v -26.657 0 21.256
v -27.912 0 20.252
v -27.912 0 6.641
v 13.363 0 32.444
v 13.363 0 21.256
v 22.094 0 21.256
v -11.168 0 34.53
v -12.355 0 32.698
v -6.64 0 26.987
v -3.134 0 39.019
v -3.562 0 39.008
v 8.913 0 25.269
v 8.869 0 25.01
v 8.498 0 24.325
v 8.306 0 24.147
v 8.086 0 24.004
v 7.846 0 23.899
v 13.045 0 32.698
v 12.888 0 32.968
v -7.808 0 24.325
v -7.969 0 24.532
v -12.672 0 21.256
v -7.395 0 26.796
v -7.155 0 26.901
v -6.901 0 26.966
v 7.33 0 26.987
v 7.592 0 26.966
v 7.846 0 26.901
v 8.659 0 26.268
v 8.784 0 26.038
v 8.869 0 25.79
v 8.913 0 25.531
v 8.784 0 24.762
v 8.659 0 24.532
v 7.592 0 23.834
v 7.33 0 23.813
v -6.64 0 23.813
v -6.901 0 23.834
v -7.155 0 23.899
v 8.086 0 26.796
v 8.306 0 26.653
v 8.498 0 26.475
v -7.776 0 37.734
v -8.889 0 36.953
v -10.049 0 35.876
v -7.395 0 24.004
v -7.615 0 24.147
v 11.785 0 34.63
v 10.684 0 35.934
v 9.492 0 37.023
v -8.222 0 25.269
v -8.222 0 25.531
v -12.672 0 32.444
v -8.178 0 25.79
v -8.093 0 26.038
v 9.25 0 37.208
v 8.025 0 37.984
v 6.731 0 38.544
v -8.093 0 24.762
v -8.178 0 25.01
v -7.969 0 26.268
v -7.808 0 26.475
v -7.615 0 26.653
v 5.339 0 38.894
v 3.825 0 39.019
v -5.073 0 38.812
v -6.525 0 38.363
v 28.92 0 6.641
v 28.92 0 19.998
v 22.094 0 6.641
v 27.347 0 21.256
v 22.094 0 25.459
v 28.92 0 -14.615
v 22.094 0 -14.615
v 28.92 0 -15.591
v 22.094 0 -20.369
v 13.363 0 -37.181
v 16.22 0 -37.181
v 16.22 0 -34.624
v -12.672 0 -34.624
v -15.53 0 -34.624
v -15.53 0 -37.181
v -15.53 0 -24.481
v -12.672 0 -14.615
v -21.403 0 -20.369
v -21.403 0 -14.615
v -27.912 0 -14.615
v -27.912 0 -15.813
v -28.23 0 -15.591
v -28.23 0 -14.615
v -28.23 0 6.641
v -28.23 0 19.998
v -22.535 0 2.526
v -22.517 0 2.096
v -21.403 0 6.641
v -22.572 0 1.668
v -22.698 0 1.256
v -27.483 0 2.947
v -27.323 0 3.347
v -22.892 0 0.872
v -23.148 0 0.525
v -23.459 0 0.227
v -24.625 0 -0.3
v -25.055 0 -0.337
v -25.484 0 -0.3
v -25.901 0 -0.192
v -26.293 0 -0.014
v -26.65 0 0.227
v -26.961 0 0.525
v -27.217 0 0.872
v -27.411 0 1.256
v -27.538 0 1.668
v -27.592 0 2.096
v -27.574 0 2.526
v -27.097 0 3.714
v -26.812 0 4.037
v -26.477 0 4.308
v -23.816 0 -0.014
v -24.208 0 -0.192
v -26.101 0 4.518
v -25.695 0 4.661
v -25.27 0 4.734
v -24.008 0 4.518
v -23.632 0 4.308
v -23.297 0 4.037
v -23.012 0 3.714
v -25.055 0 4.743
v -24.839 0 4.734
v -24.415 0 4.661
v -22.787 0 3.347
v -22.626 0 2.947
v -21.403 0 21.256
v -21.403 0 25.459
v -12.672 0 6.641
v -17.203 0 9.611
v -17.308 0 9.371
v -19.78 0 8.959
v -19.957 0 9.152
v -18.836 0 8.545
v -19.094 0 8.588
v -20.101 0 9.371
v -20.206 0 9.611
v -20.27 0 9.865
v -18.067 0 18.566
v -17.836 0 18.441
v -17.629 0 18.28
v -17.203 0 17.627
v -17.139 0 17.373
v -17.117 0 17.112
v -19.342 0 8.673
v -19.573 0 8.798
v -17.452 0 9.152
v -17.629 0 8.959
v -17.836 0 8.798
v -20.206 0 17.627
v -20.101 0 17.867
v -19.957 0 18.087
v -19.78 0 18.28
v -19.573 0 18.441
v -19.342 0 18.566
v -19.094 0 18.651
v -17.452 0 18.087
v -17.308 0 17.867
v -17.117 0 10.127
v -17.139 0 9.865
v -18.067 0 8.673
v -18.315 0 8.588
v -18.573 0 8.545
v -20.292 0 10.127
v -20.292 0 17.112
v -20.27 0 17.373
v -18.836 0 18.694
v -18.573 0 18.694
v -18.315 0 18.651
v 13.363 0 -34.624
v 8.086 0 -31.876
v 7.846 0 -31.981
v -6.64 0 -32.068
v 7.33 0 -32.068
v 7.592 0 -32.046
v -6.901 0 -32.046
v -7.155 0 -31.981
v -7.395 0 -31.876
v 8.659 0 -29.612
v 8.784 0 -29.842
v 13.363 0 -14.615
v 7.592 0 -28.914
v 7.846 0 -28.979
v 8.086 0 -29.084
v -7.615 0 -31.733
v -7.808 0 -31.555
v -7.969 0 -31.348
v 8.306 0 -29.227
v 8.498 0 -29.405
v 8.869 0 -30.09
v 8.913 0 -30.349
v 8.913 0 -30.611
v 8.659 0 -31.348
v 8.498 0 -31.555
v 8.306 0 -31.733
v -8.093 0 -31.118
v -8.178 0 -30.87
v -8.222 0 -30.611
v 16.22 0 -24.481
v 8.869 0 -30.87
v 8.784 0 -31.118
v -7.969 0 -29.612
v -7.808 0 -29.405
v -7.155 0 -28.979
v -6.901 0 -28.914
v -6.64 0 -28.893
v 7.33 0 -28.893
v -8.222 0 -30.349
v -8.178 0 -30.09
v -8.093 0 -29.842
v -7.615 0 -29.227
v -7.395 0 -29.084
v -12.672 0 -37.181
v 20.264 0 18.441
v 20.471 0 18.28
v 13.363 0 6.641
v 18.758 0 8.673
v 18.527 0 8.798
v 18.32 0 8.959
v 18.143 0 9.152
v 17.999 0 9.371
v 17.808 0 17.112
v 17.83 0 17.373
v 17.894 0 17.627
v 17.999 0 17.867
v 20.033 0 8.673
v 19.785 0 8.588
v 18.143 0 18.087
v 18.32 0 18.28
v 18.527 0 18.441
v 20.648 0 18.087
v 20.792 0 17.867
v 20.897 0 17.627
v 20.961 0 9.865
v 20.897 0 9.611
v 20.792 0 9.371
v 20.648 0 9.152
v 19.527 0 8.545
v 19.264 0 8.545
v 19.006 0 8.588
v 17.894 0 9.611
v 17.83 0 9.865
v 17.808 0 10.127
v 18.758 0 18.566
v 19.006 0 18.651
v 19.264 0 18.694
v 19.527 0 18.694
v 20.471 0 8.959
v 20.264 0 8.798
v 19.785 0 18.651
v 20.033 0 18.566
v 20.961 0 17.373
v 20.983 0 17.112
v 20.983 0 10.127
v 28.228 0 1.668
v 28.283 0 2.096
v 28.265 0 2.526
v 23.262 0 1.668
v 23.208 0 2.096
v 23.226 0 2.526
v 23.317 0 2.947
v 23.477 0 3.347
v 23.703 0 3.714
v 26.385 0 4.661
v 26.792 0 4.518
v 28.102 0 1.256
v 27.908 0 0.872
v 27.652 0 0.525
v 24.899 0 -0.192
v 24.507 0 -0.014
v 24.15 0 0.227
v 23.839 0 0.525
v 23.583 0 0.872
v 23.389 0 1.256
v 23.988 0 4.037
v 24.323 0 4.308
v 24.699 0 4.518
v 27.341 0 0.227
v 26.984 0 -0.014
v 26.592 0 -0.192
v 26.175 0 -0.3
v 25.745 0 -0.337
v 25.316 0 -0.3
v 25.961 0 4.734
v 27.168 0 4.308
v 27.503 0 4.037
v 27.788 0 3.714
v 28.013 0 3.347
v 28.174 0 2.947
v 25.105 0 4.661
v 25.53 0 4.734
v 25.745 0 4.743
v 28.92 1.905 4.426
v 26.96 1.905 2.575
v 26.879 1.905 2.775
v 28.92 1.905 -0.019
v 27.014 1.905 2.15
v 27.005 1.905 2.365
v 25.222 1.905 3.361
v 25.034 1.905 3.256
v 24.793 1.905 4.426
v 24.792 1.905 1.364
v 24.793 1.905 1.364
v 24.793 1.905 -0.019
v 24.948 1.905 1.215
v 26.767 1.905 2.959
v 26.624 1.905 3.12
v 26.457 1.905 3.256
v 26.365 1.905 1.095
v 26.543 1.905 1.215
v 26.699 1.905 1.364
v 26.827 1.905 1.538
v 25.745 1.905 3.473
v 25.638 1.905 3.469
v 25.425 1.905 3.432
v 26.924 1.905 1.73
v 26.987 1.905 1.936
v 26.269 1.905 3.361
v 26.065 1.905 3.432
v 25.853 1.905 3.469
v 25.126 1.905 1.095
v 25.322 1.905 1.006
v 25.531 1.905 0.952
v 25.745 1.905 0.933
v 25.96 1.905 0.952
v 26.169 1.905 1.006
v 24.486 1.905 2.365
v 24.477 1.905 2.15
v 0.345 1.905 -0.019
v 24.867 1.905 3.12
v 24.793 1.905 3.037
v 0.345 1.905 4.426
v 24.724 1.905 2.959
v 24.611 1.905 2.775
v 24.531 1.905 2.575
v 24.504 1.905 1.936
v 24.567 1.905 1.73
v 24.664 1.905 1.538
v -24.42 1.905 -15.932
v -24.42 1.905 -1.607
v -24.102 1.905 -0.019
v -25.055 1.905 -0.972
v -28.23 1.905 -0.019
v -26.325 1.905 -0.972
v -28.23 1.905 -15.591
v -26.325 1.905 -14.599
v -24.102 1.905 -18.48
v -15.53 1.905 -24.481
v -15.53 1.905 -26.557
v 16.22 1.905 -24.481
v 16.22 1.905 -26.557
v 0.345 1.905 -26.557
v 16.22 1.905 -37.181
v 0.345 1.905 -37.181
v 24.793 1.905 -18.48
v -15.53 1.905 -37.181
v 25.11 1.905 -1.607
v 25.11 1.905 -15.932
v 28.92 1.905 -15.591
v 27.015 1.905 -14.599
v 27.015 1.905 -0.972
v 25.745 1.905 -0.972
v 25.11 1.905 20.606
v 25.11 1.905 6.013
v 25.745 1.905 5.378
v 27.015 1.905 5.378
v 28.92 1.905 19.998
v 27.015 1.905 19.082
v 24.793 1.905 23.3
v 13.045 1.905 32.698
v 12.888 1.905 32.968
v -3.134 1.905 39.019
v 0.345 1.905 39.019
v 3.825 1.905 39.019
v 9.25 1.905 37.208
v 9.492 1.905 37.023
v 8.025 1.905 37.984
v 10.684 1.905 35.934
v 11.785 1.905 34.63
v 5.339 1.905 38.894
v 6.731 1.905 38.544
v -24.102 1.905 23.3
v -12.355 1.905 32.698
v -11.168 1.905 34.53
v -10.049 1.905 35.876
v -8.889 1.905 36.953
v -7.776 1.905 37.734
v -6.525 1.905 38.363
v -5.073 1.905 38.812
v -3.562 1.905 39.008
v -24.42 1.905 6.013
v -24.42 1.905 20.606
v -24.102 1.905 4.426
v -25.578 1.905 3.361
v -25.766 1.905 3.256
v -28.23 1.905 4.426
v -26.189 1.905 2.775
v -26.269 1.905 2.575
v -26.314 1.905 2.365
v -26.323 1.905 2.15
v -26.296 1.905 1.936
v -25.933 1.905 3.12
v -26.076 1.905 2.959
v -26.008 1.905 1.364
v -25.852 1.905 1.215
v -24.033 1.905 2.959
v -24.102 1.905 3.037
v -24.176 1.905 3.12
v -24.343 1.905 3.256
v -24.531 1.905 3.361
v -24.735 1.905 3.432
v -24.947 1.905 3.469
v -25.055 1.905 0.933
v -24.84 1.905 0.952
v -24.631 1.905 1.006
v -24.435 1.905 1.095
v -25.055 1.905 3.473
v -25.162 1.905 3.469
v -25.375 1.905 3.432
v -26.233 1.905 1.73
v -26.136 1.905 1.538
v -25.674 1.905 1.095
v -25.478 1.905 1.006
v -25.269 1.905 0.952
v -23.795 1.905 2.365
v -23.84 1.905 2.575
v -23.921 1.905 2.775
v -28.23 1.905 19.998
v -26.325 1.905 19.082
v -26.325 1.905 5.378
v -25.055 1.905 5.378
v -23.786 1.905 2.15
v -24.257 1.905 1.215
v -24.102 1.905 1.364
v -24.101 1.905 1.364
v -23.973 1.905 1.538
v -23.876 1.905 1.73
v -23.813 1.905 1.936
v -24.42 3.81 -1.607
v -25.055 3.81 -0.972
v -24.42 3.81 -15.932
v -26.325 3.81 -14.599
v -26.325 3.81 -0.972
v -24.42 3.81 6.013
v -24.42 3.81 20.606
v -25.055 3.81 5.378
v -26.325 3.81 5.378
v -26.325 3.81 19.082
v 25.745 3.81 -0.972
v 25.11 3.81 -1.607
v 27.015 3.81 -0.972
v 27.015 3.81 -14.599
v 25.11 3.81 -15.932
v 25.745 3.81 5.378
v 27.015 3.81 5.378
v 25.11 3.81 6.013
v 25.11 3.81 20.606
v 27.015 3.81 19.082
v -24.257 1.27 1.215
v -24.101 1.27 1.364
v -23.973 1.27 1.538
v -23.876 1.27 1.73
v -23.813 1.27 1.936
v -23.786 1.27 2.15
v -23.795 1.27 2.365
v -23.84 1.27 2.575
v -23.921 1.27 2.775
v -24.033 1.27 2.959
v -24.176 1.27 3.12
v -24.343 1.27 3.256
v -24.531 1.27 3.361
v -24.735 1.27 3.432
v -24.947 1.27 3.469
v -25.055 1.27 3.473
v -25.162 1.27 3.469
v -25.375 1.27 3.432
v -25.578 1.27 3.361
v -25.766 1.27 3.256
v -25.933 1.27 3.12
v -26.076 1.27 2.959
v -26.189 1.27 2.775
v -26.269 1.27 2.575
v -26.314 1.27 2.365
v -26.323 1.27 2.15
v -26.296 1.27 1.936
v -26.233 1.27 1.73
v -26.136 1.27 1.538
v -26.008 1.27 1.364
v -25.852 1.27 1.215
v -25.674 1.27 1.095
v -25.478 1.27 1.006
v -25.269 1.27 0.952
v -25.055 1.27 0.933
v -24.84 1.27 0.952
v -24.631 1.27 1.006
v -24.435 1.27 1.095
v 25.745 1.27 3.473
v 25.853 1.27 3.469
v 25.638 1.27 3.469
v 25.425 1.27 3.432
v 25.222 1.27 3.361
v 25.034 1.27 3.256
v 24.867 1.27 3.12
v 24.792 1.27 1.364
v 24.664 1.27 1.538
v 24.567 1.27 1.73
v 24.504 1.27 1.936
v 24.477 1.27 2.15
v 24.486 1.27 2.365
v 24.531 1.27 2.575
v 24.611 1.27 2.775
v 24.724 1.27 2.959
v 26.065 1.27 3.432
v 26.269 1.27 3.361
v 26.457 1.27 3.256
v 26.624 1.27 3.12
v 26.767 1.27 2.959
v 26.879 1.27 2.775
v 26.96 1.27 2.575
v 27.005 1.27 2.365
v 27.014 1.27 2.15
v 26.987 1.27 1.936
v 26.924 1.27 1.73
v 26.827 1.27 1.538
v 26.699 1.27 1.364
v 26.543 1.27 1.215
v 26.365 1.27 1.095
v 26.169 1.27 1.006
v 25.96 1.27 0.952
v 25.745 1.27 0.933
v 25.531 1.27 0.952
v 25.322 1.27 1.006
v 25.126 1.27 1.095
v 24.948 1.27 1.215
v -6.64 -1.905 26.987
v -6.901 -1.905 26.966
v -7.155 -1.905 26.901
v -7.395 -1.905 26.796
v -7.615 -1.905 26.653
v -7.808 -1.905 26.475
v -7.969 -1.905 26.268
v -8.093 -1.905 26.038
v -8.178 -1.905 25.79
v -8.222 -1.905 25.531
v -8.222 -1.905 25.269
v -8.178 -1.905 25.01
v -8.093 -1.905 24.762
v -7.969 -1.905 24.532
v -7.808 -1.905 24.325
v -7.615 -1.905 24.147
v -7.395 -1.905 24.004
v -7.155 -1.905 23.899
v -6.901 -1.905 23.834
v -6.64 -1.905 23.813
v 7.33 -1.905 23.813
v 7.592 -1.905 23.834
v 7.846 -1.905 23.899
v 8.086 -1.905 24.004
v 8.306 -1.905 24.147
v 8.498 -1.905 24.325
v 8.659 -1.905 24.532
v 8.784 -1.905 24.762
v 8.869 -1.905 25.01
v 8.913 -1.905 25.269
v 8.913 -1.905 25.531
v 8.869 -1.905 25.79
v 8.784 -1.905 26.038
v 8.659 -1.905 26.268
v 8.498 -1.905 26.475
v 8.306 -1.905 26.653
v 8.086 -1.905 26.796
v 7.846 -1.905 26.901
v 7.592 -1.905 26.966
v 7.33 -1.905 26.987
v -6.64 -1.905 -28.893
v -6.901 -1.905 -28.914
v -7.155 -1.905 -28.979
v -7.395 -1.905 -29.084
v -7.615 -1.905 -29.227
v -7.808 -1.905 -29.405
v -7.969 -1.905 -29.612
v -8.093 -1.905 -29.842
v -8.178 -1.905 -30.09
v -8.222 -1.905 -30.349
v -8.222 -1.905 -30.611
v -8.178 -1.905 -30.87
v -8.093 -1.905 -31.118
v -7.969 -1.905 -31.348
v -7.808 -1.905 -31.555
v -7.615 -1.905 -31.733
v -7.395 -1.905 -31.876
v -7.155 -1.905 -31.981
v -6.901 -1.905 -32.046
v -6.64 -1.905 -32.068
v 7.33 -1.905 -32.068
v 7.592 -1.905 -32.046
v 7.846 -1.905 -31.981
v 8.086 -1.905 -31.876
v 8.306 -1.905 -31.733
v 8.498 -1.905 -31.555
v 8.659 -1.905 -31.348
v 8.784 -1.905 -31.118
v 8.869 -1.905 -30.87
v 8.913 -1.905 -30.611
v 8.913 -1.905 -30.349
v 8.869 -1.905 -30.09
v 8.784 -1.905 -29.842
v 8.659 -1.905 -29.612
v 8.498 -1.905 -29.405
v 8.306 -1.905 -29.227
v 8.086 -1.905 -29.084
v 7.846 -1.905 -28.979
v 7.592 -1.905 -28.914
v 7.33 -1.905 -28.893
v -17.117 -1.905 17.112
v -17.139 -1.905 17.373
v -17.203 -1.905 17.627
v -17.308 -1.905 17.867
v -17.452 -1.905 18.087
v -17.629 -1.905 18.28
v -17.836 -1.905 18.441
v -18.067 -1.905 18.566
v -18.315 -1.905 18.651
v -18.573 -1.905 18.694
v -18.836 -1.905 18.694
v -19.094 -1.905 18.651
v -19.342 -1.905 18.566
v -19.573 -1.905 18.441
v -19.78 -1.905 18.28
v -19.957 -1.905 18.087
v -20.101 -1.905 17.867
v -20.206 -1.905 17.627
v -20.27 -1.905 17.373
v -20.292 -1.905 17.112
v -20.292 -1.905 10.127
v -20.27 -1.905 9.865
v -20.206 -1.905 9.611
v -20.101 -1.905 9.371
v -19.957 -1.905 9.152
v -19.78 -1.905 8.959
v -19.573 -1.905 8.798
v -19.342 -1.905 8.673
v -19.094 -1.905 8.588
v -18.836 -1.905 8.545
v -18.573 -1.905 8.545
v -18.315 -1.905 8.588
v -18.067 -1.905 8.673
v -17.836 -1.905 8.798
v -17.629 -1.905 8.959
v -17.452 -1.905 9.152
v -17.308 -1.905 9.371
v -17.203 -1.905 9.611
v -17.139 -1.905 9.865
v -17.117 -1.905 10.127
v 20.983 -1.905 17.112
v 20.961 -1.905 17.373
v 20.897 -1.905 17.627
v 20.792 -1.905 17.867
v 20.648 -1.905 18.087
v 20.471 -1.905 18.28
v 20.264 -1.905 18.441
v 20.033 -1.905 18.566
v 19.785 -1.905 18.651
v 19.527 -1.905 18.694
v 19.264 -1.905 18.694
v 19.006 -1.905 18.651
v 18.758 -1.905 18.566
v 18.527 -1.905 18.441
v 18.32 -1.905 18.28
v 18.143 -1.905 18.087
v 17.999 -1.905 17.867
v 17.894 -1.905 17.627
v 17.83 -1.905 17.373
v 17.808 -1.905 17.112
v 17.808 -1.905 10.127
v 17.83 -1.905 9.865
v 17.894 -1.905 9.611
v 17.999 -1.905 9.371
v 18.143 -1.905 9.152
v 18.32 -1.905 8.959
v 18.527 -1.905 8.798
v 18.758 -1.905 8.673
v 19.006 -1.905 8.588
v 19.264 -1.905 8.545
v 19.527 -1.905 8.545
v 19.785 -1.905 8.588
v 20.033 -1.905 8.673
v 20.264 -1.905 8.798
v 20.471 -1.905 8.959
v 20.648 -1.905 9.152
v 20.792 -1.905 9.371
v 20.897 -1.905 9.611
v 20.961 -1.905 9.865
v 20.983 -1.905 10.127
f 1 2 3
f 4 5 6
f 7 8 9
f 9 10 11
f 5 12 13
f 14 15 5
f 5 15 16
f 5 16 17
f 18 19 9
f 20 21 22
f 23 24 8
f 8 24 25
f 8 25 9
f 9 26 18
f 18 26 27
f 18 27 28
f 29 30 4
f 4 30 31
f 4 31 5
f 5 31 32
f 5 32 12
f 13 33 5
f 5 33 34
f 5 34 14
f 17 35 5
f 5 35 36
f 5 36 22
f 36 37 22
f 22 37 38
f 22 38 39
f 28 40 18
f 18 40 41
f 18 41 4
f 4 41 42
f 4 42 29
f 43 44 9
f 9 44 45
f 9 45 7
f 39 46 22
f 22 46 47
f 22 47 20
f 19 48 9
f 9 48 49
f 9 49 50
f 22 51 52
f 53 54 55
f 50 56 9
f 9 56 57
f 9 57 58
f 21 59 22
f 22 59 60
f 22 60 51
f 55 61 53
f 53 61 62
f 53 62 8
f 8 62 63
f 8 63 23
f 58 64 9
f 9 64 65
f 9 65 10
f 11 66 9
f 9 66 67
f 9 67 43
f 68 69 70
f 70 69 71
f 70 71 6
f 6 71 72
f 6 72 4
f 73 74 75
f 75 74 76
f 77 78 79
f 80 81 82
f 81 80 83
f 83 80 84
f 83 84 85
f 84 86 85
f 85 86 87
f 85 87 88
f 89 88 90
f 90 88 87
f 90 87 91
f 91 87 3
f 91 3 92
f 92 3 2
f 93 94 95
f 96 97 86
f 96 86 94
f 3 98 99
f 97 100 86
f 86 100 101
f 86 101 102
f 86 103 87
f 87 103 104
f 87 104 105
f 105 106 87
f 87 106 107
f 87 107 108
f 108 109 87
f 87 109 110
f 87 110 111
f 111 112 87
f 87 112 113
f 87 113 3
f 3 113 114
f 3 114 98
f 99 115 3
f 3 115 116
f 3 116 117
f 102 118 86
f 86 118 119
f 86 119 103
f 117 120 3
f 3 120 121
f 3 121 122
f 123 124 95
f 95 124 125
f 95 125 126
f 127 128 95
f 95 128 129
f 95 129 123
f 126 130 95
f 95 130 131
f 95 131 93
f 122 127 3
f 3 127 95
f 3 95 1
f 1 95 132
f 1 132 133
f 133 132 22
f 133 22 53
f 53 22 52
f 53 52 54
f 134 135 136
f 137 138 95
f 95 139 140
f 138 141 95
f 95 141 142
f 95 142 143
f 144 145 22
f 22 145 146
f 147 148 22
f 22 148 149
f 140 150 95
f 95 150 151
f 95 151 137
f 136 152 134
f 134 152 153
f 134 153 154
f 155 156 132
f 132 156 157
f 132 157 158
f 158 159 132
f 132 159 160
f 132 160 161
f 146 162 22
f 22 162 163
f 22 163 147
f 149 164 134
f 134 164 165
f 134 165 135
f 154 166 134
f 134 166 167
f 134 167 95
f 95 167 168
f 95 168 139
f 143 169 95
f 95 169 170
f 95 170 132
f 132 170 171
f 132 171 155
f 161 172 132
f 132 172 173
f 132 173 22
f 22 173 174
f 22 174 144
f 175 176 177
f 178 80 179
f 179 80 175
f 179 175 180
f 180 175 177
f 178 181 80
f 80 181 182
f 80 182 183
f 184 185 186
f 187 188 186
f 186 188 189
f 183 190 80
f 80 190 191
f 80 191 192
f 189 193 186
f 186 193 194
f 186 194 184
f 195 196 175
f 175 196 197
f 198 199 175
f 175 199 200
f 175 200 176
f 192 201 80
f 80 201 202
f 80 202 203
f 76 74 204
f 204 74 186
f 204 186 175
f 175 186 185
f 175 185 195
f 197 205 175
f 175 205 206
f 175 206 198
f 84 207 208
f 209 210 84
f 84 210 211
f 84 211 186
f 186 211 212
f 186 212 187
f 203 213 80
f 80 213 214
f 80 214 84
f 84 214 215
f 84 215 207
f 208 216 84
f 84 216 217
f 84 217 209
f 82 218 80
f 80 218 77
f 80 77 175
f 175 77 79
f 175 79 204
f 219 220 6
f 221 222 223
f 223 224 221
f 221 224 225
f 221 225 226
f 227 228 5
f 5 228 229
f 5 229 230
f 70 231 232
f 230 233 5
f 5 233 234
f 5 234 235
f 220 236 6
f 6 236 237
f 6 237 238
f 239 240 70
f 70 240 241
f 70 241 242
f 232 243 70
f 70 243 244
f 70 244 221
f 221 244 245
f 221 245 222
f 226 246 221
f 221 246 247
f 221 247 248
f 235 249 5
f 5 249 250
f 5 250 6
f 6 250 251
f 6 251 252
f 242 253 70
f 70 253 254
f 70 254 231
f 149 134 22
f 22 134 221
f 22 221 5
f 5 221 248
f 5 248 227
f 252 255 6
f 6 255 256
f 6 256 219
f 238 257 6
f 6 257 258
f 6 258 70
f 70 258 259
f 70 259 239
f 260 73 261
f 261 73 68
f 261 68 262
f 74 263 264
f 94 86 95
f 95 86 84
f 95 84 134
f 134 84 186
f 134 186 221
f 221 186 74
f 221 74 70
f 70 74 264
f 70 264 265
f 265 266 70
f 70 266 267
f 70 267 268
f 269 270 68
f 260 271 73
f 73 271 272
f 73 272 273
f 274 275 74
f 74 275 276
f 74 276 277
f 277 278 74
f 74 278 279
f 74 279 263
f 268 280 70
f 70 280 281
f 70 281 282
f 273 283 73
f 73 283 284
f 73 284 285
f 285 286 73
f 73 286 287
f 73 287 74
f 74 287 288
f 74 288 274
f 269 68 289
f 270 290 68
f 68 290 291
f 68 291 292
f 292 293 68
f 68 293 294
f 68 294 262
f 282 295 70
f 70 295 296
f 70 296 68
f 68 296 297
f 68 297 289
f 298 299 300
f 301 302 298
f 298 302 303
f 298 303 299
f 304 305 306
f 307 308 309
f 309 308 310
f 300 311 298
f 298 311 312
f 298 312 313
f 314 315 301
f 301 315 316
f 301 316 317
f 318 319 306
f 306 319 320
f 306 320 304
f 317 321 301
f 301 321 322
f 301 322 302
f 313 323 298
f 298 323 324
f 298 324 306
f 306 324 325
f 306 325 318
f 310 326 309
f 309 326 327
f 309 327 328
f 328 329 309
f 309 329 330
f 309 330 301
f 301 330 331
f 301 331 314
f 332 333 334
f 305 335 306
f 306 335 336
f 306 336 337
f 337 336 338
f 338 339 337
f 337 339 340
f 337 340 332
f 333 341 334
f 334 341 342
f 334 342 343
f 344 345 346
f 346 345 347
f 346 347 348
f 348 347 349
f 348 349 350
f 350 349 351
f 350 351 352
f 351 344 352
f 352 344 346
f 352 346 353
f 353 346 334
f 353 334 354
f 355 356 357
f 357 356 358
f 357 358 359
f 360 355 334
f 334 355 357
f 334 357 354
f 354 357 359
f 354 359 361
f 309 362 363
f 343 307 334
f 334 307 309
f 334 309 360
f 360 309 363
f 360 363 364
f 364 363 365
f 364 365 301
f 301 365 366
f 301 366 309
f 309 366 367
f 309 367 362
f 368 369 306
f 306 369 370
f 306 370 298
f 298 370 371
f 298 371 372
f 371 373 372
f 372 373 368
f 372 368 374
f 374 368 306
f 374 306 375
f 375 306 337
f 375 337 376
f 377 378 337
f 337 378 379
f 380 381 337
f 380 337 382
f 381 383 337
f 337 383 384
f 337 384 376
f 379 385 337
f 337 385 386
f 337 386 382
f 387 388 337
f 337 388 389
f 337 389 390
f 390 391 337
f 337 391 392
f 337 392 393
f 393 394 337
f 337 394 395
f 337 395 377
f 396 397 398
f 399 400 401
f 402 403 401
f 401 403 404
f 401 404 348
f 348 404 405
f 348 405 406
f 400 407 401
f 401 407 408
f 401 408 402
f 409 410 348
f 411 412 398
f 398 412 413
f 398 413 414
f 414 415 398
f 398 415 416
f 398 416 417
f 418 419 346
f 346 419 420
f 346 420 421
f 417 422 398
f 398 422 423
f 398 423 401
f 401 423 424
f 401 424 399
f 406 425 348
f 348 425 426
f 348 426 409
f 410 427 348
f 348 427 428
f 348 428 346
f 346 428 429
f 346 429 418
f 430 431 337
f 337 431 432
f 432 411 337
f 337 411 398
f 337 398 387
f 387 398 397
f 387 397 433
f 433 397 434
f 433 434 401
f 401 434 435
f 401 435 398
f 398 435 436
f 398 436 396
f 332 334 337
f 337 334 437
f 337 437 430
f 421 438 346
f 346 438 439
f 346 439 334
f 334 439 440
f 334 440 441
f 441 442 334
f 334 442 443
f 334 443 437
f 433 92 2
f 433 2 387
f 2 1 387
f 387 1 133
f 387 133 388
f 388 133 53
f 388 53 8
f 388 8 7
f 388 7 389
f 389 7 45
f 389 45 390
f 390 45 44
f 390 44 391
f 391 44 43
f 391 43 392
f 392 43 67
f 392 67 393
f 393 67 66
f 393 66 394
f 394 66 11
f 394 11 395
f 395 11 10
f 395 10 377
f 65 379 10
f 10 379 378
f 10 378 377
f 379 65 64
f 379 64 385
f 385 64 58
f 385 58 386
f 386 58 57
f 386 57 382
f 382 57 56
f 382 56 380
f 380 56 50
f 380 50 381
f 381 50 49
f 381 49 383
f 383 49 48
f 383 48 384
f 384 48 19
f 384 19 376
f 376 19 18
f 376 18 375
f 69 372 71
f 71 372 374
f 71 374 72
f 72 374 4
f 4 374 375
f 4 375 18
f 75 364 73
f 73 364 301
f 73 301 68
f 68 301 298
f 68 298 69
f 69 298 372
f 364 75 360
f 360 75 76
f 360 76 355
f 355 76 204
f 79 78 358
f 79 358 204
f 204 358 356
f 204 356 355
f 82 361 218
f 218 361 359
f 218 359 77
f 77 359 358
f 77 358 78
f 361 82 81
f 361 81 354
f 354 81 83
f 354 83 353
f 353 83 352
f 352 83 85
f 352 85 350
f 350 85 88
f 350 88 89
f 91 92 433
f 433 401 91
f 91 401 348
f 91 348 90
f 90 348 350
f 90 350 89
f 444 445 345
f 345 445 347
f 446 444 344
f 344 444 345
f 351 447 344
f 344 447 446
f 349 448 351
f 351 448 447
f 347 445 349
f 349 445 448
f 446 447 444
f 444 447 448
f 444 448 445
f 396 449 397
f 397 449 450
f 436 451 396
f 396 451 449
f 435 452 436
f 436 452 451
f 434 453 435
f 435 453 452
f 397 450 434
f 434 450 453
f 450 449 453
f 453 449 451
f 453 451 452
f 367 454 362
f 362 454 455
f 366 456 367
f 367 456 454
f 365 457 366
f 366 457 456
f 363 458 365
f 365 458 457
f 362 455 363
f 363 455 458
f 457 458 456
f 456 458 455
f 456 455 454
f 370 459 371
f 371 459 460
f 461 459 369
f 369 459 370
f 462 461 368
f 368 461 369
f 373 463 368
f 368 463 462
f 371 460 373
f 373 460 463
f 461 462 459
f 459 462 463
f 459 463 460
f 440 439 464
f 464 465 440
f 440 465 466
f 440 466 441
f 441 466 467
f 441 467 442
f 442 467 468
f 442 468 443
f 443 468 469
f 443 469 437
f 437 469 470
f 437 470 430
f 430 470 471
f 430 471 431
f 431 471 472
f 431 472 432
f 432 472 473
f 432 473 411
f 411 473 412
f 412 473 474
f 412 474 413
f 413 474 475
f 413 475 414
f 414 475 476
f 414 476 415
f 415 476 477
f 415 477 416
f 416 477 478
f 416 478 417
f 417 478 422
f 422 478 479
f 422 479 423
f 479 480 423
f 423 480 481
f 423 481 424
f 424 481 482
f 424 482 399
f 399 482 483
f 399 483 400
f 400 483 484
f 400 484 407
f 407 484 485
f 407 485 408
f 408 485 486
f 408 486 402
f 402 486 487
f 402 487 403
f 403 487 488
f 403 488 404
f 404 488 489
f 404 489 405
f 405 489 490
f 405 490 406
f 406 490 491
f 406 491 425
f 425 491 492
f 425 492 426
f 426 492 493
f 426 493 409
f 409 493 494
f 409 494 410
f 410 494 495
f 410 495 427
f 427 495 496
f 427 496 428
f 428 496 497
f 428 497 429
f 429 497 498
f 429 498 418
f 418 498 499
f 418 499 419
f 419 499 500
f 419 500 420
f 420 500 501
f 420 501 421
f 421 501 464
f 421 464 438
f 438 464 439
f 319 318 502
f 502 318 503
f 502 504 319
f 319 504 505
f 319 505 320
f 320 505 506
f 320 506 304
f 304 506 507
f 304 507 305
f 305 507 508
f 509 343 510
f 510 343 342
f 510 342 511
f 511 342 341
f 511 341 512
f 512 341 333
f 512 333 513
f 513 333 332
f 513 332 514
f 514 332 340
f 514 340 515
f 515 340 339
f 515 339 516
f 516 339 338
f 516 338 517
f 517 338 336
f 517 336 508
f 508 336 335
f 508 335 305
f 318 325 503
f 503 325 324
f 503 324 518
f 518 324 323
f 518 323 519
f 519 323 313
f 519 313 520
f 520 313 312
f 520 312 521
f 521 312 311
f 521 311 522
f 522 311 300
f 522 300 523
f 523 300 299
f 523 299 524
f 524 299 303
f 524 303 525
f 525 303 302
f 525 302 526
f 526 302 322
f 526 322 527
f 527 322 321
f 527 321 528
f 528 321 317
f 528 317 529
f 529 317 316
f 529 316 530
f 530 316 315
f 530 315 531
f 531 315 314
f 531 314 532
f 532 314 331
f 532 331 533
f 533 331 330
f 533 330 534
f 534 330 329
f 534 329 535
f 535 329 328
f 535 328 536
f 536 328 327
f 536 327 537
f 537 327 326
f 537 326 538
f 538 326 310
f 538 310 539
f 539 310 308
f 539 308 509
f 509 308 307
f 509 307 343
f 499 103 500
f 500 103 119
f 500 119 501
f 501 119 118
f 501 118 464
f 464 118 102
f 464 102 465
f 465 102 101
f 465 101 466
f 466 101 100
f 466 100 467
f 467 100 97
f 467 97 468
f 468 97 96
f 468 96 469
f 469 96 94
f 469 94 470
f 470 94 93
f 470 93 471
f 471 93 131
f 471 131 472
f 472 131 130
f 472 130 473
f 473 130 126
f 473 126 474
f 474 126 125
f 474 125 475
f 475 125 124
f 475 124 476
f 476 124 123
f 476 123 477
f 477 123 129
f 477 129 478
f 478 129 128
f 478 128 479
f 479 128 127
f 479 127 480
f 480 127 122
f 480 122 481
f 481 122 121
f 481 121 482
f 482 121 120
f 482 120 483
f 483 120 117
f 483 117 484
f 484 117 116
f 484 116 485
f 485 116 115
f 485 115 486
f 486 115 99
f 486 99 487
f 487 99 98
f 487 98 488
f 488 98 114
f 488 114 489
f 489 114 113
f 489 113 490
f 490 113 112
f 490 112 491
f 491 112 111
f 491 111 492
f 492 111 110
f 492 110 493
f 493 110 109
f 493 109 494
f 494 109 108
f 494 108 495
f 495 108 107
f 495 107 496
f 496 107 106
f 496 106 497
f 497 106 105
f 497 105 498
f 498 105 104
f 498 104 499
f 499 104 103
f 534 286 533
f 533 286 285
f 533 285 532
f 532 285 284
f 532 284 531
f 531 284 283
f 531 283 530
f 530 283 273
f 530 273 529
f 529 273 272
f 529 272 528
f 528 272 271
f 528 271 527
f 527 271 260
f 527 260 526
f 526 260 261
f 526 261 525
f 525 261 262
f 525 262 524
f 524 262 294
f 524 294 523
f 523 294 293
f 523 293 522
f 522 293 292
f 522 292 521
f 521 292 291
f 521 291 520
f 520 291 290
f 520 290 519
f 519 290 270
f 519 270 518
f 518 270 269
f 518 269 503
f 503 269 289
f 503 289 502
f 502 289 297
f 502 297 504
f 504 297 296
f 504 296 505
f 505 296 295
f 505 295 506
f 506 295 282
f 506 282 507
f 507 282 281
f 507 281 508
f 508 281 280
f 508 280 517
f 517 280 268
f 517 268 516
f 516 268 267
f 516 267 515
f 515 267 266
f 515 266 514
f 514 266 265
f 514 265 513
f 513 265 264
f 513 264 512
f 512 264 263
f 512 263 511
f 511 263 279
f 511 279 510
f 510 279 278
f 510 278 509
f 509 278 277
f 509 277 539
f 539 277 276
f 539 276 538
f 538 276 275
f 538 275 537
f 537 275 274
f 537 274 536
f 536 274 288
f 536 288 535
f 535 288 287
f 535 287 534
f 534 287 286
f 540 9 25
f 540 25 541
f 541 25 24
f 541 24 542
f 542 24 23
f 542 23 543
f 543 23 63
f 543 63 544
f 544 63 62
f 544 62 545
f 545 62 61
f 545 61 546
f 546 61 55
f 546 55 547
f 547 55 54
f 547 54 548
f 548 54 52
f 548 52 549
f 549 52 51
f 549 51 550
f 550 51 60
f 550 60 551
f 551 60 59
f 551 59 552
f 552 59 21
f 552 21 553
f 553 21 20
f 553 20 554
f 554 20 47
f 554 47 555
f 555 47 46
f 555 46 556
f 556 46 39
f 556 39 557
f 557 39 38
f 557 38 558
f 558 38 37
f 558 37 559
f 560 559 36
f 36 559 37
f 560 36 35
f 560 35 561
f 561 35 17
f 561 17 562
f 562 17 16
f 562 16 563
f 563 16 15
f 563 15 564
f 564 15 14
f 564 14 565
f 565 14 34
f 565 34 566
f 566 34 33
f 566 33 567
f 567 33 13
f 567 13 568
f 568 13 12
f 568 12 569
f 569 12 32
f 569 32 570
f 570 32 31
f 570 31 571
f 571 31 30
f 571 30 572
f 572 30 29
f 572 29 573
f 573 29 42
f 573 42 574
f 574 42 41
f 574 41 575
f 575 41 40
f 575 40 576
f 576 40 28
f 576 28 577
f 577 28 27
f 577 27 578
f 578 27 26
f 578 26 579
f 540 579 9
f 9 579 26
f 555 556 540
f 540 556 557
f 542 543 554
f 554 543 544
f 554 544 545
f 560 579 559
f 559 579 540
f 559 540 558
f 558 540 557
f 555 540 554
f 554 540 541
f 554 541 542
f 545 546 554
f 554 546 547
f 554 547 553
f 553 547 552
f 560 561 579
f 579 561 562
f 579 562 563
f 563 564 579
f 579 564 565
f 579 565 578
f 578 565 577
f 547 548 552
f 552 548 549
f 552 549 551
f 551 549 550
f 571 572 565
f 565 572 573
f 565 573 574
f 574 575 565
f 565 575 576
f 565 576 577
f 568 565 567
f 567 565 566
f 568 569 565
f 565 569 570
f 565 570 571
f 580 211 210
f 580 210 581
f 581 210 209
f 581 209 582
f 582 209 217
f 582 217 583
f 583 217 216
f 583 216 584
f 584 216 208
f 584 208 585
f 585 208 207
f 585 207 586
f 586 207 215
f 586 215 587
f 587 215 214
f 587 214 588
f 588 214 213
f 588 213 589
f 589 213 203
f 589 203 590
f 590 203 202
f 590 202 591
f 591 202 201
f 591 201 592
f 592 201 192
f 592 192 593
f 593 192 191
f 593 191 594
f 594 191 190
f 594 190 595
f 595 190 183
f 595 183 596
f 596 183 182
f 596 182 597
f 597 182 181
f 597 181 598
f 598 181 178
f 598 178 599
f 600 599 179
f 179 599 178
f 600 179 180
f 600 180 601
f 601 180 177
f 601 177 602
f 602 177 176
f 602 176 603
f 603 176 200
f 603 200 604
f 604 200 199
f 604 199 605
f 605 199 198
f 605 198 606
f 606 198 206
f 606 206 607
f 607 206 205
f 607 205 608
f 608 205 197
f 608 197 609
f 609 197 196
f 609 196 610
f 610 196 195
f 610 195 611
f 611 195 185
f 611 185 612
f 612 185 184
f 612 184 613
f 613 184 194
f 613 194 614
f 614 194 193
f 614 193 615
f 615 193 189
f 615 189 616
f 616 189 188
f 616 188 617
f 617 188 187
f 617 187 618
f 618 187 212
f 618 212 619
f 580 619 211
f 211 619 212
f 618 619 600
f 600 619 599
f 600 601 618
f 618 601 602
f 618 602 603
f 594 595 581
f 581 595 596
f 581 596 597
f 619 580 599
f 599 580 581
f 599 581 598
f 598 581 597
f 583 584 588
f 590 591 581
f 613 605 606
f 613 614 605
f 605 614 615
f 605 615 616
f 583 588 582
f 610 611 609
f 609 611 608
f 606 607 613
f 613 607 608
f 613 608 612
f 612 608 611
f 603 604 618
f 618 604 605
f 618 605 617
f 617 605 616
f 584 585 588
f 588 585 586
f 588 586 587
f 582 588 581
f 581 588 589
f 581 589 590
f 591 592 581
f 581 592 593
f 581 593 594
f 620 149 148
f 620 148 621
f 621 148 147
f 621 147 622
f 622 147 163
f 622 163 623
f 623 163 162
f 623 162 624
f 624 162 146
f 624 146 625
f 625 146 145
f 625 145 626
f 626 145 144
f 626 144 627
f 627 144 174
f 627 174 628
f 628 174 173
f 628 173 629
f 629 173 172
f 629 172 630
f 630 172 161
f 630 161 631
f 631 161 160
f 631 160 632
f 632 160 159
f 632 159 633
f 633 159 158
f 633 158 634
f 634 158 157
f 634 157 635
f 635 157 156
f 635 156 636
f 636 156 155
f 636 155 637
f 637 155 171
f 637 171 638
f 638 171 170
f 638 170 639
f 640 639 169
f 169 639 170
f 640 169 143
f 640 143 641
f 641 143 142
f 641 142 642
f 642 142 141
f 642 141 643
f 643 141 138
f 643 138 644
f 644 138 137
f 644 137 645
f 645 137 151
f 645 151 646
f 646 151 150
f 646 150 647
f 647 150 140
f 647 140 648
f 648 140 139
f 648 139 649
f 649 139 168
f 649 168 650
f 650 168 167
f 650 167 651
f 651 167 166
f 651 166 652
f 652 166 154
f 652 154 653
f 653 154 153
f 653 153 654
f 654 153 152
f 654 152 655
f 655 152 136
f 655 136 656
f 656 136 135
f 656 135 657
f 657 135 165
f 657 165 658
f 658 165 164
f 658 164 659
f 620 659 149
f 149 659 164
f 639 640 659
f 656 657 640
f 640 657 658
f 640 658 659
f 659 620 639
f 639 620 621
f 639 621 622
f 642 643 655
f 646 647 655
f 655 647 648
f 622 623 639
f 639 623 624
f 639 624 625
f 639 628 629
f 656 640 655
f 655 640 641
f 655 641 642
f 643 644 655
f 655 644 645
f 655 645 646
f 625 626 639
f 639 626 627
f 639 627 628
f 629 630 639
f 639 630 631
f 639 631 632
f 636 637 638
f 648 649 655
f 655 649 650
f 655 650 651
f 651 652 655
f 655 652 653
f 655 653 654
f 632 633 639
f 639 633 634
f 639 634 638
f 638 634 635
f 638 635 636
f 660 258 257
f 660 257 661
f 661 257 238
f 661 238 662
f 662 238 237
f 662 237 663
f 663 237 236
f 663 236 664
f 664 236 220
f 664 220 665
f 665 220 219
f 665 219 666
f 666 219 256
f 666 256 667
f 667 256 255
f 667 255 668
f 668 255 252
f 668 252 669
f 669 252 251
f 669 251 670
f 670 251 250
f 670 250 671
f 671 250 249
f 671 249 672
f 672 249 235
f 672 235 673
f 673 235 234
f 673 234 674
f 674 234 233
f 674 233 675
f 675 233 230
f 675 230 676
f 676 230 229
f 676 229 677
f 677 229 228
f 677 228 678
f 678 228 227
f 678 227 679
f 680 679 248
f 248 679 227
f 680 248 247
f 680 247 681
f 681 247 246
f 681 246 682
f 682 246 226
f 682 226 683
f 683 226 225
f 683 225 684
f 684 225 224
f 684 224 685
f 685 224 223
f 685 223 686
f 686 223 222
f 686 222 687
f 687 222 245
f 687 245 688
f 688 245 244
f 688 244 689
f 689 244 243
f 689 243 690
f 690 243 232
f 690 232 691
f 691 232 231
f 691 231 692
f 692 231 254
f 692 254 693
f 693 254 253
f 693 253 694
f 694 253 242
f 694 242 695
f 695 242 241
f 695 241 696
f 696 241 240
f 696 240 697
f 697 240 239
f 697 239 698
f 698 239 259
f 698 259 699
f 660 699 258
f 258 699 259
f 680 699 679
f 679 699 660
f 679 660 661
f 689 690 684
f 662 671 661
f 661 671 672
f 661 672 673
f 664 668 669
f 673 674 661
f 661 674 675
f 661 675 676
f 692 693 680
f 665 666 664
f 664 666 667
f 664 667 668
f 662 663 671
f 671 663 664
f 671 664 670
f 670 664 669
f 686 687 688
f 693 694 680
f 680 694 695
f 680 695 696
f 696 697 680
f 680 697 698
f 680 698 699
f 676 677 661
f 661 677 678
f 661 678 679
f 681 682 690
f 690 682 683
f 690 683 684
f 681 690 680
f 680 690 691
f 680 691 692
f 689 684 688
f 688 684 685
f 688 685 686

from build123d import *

# Parameters (mm, degrees)
BOSS_EXTRUDE1_DEPTH = 1.905
BOSS_EXTRUDE2_DEPTH = 3.81
SKETCH4_R           = 1.27
CUT_EXTRUDE1_DEPTH  = 3.81
CHAMFER1_SIZE       = 1.27
BOSS_EXTRUDE3_DEPTH = 1.905


with BuildPart() as part:
    # Sketch2 → Boss-Extrude1 (new body)
    with BuildSketch(Plane(origin=(0, 0, 0), x_dir=(1, 0, 0), z_dir=(0, 1, 0))):
        with BuildLine():
            Line((-15.52955712, 24.480722254), (-28.22955712, 15.590722254))
            Line((-28.22955712, 15.590722254), (-28.22955712, -19.997532082))
            Line((-28.22955712, -19.997532082), (-12.354557094, -32.697532128))
            add(Edge.make_bspline(
                [(-12.354557094, -32.697532128), (-10.357340532, -36.191853262), (-7.467085325, -39.002495951), (-3.133791164, -39.019277746)],
                knots=[0.450643599, 0.450643599, 0.450643599, 0.450643599, 1, 1, 1, 1], degree=3))
            Line((-3.133791164, -39.019277746), (3.824676923, -39.019277746))
            add(Edge.make_bspline(
                [(3.824676923, -39.019277746), (8.157971103, -39.002495951), (11.048226317, -36.191853237), (13.04544288, -32.697532082)],
                knots=[0.450643596, 0.450643596, 0.450643596, 0.450643596, 1, 1, 1, 1], degree=3))
            Line((13.04544288, -32.697532082), (28.92044288, -19.997532082))
            Line((28.92044288, -19.997532082), (28.92044288, 15.590722254))
            Line((28.92044288, 15.590722254), (16.22044288, 24.480722254))
            Line((16.22044288, 24.480722254), (16.22044288, 37.180722254))
            Line((16.22044288, 37.180722254), (-15.52955712, 37.180722254))
            Line((-15.52955712, 37.180722254), (-15.52955712, 24.480722254))
        make_face()
    extrude(amount=BOSS_EXTRUDE1_DEPTH)

    # Sketch3 → Boss-Extrude2 (add)
    with BuildSketch(Plane(origin=(0, 0, 0), x_dir=(1, 0, 0), z_dir=(0, 1, 0))):
        Polygon((-24.41955712, 1.606595086), (-24.41955712, 15.932373409), (-26.32455712, 14.598873409), (-26.32455712, 0.971595086), (-25.05455712, 0.971595086), align=None)
        Polygon((27.01544288, 14.598873409), (25.11044288, 15.932373409), (25.11044288, 1.606595086), (25.74544288, 0.971595086), (27.01544288, 0.971595086), align=None)
        Polygon((-24.41955712, -6.013404914), (-25.05455712, -5.378404914), (-26.32455712, -5.378404914), (-26.32455712, -19.081941748), (-24.41955712, -20.605941748), align=None)
        Polygon((27.01544288, -5.378404914), (25.74544288, -5.378404914), (25.11044288, -6.013404914), (25.11044288, -20.605941748), (27.01544288, -19.081941748), align=None)
    extrude(amount=BOSS_EXTRUDE2_DEPTH)

    # Sketch4 → Cut-Extrude1 (cut)
    with BuildSketch(Plane(origin=(0, 0, 0), x_dir=(1, 0, 0), z_dir=(0, 1, 0))):
        with Locations((-25.05455712, -2.203404914)):
            Circle(SKETCH4_R)
        with Locations((25.74544288, -2.203404914)):
            Circle(SKETCH4_R)
    extrude(amount=CUT_EXTRUDE1_DEPTH, mode=Mode.SUBTRACT)

    # Chamfer1
    chamfer1_edges = [part.edges().sort_by_distance(p)[0] for p in [
        (-26.32455712, 0, 2.203404914),
        (24.47544288, 0, 2.203404914),
    ]]
    chamfer(chamfer1_edges, length=CHAMFER1_SIZE)

    # Sketch5 → Boss-Extrude3 (add)
    with BuildSketch(Plane.XZ):
        with BuildLine():
            Line((-6.63955712, 26.9875), (7.33044288, 26.9875))
            ThreePointArc((7.33044288, 26.9875), (8.91794288, 25.4), (7.33044288, 23.8125))
            Line((7.33044288, 23.8125), (-6.63955712, 23.8125))
            ThreePointArc((-6.63955712, 23.8125), (-8.22705712, 25.4), (-6.63955712, 26.9875))
        make_face()
        with BuildLine():
            Line((-6.63955712, -28.8925), (7.33044288, -28.8925))
            ThreePointArc((7.33044288, -28.8925), (8.91794288, -30.48), (7.33044288, -32.0675))
            Line((7.33044288, -32.0675), (-6.63955712, -32.0675))
            ThreePointArc((-6.63955712, -32.0675), (-8.22705712, -30.48), (-6.63955712, -28.8925))
        make_face()
        with BuildLine():
            Line((-17.11705712, 17.111777746), (-17.11705712, 10.126777746))
            ThreePointArc((-17.11705712, 10.126777746), (-18.70455712, 8.539277746), (-20.29205712, 10.126777746))
            Line((-20.29205712, 10.126777746), (-20.29205712, 17.111777746))
            ThreePointArc((-20.29205712, 17.111777746), (-18.70455712, 18.699277746), (-17.11705712, 17.111777746))
        make_face()
        with BuildLine():
            Line((20.98294288, 17.111777746), (20.98294288, 10.126777746))
            ThreePointArc((20.98294288, 10.126777746), (19.39544288, 8.539277746), (17.80794288, 10.126777746))
            Line((17.80794288, 10.126777746), (17.80794288, 17.111777746))
            ThreePointArc((17.80794288, 17.111777746), (19.39544288, 18.699277746), (20.98294288, 17.111777746))
        make_face()
    extrude(amount=BOSS_EXTRUDE3_DEPTH)


solid = part.part
